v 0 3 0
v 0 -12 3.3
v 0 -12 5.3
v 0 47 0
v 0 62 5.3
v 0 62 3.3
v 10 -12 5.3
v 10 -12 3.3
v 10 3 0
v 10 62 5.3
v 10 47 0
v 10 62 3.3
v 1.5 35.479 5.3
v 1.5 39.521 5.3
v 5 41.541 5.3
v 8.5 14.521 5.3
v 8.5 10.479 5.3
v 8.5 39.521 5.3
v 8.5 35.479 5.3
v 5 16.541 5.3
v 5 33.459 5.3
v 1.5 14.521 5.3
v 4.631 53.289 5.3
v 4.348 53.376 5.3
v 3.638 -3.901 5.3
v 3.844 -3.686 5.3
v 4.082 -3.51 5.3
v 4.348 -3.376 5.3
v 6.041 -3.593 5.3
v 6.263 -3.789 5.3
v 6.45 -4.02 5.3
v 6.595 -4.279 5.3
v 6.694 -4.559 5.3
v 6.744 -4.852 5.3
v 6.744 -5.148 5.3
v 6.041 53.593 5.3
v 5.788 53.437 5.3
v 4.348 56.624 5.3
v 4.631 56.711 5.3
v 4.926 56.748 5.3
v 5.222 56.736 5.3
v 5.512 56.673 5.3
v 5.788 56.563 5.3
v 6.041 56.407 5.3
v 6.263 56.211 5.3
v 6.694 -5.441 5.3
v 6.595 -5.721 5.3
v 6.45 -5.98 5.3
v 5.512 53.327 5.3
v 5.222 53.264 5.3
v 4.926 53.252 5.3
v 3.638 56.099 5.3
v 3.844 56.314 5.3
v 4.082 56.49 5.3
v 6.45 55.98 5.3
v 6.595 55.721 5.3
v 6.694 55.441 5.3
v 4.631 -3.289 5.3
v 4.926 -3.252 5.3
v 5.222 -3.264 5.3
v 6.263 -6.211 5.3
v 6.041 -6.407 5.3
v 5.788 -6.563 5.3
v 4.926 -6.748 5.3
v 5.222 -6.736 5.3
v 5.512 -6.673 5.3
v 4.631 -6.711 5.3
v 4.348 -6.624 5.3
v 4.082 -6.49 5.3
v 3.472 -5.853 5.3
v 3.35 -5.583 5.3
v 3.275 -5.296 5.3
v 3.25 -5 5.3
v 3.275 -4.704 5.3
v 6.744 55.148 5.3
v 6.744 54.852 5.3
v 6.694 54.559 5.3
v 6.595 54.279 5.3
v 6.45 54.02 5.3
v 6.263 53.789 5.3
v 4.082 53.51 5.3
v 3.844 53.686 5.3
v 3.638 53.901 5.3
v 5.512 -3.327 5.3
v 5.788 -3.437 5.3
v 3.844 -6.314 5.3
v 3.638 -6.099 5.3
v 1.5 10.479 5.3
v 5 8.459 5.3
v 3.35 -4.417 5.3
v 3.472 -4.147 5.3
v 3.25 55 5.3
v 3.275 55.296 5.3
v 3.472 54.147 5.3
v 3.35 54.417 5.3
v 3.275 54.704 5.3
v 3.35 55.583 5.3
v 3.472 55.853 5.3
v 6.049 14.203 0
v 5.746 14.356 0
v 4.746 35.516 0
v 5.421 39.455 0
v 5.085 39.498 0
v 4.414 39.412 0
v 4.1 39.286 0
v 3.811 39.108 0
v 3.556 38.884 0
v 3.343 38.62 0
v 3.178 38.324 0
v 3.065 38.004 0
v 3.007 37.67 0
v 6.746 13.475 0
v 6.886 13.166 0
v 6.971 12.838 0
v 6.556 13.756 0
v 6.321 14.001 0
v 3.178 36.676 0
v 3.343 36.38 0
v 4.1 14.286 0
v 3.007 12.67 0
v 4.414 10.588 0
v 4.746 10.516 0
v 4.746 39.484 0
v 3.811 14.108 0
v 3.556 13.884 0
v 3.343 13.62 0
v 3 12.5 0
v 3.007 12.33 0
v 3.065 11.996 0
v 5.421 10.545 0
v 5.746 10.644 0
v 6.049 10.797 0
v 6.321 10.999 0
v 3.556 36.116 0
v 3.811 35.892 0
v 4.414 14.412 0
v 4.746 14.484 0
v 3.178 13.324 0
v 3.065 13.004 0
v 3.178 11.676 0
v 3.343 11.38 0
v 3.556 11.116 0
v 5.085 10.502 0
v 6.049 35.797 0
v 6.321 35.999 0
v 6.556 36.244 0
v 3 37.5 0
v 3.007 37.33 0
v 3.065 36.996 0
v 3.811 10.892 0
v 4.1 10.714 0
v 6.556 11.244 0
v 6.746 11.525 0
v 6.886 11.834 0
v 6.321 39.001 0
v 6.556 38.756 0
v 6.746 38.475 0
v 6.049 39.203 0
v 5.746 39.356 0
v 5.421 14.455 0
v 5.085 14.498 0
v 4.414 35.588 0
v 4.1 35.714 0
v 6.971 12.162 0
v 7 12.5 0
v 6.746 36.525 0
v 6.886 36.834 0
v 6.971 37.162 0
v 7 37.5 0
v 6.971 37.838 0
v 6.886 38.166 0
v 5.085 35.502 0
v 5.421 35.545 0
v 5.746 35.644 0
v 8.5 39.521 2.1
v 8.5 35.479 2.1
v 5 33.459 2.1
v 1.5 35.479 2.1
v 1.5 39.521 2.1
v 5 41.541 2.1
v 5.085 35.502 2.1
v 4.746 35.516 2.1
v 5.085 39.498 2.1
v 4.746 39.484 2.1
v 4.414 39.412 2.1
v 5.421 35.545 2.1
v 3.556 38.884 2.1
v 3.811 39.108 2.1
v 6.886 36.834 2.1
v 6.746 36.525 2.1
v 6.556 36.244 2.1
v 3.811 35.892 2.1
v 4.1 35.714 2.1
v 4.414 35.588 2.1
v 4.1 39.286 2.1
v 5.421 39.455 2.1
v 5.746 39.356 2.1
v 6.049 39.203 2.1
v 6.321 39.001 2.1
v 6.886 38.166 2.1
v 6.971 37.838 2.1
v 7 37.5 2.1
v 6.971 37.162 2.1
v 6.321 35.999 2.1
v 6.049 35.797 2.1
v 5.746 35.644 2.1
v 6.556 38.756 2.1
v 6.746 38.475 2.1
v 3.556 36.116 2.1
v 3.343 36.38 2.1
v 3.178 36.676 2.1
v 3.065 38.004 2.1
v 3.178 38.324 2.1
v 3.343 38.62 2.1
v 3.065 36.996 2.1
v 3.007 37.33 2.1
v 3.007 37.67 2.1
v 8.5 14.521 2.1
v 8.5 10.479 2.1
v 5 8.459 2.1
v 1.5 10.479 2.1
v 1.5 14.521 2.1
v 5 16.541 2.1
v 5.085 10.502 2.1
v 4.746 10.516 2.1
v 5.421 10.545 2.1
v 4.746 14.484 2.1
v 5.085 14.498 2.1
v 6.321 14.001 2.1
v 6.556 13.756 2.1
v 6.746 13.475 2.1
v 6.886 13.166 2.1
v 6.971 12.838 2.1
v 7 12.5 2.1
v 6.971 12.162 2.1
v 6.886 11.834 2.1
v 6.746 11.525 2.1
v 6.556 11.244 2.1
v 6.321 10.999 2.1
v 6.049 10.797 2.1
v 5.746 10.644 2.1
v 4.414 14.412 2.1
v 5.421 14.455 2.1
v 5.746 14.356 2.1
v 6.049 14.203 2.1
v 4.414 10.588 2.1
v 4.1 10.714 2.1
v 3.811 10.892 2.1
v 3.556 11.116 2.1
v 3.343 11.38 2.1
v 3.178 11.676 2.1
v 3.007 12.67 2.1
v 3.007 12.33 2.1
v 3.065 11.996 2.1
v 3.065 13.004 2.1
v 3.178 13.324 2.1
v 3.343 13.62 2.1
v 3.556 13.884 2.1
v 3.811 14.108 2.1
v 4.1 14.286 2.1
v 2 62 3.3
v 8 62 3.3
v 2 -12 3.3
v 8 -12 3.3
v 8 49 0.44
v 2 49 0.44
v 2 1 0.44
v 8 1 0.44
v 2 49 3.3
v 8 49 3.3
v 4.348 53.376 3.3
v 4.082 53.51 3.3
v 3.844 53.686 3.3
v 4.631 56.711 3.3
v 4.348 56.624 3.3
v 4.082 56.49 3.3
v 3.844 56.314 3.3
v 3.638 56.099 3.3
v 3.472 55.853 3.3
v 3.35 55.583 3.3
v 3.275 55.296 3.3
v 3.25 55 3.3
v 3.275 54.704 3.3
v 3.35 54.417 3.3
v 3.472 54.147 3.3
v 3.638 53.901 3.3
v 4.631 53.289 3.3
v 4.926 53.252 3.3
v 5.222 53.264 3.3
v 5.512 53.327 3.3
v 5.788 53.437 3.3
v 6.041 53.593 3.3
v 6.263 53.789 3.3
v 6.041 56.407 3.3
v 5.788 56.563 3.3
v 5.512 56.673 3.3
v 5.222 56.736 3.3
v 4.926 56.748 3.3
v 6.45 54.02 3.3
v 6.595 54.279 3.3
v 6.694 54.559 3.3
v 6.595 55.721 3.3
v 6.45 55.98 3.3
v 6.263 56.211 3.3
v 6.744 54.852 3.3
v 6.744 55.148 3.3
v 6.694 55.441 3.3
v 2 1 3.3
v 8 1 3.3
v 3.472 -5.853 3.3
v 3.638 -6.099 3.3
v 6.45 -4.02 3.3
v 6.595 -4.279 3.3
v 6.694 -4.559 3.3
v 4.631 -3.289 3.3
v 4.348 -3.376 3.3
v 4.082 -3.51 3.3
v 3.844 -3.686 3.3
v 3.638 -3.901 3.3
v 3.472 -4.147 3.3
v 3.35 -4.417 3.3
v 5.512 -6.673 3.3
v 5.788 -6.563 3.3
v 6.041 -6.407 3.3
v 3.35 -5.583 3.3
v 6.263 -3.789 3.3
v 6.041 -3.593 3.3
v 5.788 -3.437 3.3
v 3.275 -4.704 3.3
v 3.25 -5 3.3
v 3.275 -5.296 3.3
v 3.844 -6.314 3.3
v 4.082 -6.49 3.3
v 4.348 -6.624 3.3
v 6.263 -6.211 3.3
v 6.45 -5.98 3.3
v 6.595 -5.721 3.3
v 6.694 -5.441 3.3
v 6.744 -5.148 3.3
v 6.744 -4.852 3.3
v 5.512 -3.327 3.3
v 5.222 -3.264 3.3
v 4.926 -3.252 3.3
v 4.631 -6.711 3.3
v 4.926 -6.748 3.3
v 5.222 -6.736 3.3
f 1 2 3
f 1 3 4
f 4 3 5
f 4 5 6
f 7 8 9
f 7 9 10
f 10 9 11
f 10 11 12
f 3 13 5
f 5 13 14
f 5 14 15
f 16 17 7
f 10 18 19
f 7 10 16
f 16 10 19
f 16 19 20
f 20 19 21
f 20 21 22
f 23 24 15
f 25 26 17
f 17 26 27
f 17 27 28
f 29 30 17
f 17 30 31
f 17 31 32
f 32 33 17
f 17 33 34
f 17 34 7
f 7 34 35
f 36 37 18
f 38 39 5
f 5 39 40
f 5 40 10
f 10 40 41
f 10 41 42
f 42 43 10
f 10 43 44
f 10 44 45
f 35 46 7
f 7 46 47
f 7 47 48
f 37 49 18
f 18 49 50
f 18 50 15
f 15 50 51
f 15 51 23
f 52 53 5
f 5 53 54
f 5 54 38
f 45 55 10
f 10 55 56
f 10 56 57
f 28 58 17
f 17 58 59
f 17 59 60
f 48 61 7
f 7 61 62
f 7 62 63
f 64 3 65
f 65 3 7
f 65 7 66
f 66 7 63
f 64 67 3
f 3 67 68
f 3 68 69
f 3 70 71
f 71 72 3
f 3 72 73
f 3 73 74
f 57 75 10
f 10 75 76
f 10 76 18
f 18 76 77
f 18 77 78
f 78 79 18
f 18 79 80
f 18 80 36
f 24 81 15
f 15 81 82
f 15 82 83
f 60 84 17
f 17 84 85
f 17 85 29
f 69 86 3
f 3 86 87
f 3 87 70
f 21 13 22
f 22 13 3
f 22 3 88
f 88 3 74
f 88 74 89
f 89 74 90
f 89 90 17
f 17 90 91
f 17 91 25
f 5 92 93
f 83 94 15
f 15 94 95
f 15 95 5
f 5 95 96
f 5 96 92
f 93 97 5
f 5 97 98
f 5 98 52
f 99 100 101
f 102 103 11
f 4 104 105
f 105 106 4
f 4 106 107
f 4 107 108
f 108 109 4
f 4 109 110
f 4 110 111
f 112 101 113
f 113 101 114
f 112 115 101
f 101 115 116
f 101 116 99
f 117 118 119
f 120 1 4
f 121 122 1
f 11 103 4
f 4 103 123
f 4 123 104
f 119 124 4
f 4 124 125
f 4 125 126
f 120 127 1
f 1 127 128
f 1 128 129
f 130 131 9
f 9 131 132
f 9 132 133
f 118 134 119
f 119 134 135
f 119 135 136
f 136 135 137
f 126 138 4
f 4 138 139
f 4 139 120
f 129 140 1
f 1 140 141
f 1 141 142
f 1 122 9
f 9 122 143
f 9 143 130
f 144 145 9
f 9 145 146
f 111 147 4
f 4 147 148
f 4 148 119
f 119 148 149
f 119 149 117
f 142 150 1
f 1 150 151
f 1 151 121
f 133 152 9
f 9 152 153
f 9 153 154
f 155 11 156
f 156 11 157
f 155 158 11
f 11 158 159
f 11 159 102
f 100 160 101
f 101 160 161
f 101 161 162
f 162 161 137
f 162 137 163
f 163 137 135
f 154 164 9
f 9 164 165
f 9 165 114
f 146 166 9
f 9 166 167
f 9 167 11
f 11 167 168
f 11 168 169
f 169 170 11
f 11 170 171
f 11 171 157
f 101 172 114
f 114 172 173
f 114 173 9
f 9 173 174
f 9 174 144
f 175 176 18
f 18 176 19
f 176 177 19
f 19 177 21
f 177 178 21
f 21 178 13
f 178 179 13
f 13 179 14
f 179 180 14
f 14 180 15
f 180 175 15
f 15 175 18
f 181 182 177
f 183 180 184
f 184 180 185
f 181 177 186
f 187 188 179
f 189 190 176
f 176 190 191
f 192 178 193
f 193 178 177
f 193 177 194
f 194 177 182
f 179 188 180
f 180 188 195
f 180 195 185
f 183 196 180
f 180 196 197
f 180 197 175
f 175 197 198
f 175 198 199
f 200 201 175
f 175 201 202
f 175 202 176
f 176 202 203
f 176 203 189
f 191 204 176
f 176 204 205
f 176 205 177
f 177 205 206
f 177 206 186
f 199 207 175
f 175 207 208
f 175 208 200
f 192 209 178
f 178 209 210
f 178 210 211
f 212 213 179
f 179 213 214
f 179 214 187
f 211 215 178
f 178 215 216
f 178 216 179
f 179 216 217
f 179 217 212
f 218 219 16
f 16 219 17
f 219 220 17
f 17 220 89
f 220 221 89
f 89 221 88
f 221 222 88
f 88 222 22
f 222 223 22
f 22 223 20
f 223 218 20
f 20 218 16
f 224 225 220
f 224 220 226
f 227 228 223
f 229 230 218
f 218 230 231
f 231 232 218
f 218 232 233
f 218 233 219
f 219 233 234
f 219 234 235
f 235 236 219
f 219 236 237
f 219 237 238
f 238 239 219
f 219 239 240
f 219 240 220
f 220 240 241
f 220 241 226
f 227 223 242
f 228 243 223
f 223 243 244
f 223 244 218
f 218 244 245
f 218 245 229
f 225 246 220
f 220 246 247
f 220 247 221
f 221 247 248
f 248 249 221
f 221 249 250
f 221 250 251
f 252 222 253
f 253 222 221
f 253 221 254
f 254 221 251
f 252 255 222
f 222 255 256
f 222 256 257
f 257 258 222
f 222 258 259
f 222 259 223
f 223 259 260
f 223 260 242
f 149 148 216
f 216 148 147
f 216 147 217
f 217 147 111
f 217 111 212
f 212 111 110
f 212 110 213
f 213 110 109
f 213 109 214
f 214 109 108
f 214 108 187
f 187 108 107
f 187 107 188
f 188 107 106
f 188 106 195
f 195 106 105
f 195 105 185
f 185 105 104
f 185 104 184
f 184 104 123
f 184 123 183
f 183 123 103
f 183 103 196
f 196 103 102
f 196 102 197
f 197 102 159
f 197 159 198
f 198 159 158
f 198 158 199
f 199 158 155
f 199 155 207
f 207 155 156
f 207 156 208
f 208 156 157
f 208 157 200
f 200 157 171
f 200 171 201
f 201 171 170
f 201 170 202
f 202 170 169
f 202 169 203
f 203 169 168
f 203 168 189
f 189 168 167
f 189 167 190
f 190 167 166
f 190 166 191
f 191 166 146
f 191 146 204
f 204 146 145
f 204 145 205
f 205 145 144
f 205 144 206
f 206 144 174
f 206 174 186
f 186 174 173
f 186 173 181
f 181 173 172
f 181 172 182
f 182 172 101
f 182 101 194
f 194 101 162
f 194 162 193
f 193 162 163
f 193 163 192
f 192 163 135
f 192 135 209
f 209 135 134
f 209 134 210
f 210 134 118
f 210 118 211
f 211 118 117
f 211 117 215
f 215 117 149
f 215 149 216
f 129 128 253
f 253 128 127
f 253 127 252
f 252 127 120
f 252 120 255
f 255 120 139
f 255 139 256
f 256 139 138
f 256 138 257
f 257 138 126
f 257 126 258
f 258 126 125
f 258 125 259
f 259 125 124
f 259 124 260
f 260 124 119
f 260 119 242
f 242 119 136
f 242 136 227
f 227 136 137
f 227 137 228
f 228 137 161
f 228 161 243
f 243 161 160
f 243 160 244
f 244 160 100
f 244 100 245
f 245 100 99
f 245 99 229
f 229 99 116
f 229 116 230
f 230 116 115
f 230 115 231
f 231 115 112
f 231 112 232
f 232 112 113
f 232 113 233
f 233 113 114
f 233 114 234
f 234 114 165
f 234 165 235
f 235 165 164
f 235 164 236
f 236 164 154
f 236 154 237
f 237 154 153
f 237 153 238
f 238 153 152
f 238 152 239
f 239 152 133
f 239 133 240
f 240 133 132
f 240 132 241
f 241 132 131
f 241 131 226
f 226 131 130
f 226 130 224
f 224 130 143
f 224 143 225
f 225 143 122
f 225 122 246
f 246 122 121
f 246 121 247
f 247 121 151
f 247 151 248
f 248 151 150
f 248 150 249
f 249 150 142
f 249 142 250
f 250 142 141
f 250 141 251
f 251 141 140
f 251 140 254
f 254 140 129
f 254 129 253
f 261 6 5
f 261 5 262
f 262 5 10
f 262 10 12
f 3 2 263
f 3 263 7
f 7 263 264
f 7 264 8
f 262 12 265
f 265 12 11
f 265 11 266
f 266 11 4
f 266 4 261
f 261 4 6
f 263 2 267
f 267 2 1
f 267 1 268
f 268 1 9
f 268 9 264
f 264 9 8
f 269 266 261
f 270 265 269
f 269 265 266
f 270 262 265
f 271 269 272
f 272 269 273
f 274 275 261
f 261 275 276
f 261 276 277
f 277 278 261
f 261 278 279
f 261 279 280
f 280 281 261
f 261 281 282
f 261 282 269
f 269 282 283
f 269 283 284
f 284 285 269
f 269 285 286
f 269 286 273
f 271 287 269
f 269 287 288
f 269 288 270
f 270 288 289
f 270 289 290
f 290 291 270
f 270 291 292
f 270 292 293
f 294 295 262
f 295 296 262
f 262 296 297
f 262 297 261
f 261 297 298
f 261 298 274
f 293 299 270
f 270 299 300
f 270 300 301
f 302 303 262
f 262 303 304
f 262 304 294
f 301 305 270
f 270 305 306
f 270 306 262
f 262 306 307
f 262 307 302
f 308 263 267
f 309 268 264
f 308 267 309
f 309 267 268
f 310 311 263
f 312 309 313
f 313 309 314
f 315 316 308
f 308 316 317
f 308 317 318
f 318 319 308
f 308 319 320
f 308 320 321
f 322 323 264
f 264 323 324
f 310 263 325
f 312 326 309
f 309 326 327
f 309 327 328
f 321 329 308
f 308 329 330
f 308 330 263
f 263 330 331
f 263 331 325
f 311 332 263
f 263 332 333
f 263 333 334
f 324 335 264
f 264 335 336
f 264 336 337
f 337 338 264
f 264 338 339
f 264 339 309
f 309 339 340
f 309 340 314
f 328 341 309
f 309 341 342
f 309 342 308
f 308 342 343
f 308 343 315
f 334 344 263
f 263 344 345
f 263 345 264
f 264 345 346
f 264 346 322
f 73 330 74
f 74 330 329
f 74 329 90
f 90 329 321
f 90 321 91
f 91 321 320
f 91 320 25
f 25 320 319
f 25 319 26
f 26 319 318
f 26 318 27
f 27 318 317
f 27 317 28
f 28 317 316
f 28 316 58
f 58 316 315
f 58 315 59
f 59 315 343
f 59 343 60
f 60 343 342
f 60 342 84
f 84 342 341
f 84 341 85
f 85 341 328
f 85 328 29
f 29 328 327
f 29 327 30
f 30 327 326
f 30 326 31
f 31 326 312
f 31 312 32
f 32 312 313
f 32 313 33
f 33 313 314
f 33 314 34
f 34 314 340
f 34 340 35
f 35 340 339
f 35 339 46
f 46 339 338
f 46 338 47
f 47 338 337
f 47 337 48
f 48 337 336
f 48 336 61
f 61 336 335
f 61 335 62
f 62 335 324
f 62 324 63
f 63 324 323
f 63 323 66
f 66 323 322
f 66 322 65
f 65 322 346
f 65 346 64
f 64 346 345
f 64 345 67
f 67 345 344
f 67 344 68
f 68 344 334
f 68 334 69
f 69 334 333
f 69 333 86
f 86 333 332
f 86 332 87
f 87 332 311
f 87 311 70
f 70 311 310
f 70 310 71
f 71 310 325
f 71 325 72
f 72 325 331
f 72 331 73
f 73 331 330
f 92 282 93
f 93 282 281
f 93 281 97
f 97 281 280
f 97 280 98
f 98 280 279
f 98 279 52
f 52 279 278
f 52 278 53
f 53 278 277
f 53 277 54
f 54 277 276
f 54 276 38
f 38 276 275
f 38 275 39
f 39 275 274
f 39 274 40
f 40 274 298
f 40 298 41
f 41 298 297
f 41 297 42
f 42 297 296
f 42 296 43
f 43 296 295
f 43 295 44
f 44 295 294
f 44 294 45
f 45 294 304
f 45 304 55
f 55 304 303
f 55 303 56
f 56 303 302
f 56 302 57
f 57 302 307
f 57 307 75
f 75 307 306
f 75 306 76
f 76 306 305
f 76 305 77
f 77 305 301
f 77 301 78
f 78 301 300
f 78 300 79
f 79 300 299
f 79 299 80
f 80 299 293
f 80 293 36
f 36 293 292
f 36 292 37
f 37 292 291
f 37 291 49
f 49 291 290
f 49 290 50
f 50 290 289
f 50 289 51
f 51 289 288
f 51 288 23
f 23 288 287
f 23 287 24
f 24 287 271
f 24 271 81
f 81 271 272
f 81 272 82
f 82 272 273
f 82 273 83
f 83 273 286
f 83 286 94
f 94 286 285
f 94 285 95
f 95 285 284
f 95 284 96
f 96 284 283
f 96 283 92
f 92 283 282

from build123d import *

# Parameters (mm, degrees)
SKETCH1_W           = 10
SKETCH1_H           = 50
BOSS_EXTRUDE1_DEPTH = 5.3
CUT_EXTRUDE1_DEPTH  = 3.2
SKETCH3_R           = 2
CUT_EXTRUDE2_DEPTH  = 8
SKETCH4_W           = 10
SKETCH4_H           = 5.3
BOSS_EXTRUDE2_DEPTH = 12
SKETCH5_W           = 10
SKETCH5_H           = 5.3
BOSS_EXTRUDE3_DEPTH = 12
CUT_EXTRUDE3_DEPTH  = 12
SKETCH8_W           = 6
SKETCH8_H           = 13
CUT_EXTRUDE4_DEPTH  = 3.3
SKETCH9_R           = 1.75
CUT_EXTRUDE5_DEPTH  = 3.3


with BuildPart() as part:
    # Sketch1 → Boss-Extrude1 (new body)
    with BuildSketch(Plane.XY):
        with Locations((5, 25)):
            Rectangle(SKETCH1_W, SKETCH1_H)
    extrude(amount=BOSS_EXTRUDE1_DEPTH)

    # Sketch2 → Cut-Extrude1 (cut)
    with BuildSketch(Plane.XY.offset(5.3)):
        Polygon((8.5, 14.520725942), (5, 16.541451884), (1.5, 14.520725942), (1.5, 10.479274058), (5, 8.458548116), (8.5, 10.479274058), align=None)
        Polygon((8.5, 39.520725942), (5, 41.541451884), (1.5, 39.520725942), (1.5, 35.479274058), (5, 33.458548116), (8.5, 35.479274058), align=None)
    extrude(amount=-CUT_EXTRUDE1_DEPTH, mode=Mode.SUBTRACT)

    # Sketch3 → Cut-Extrude2 (cut)
    with BuildSketch(Plane.XY.offset(2.1)):
        with Locations((5, 37.5)):
            Circle(SKETCH3_R)
        with Locations((5, 12.5)):
            Circle(SKETCH3_R)
    extrude(amount=-CUT_EXTRUDE2_DEPTH, mode=Mode.SUBTRACT)

    # Sketch4 → Boss-Extrude2 (add)
    with BuildSketch(Plane(origin=(0, 50, 0), x_dir=(1, 0, 0), z_dir=(0, 1, 0))):
        with Locations((5, -2.65)):
            Rectangle(SKETCH4_W, SKETCH4_H)
    extrude(amount=BOSS_EXTRUDE2_DEPTH)

    # Sketch5 → Boss-Extrude3 (add)
    with BuildSketch(Plane.XZ):
        with Locations((5, 2.65)):
            Rectangle(SKETCH5_W, SKETCH5_H)
    extrude(amount=BOSS_EXTRUDE3_DEPTH)

    # Sketch6 → Cut-Extrude3 (cut)
    with BuildSketch(Plane.ZY):
        Polygon((3.3, 62), (0, 47), (0, 62), align=None)
        Polygon((0, -12), (3.3, -12), (0, 3), align=None)
    extrude(amount=-CUT_EXTRUDE3_DEPTH, mode=Mode.SUBTRACT)

    # Sketch8 → Cut-Extrude4 (cut)
    with BuildSketch(Plane(origin=(0, 0, 0), x_dir=(-1, 0, 0), z_dir=(0, 0, -1))):
        with Locations((-5, 55.5)):
            Rectangle(SKETCH8_W, SKETCH8_H)
        with Locations((-5, -5.5)):
            Rectangle(SKETCH8_W, SKETCH8_H)
    extrude(amount=-CUT_EXTRUDE4_DEPTH, mode=Mode.SUBTRACT)

    # Sketch9 → Cut-Extrude5 (cut)
    with BuildSketch(Plane(origin=(0, 0, 3.3), x_dir=(-1, 0, 0), z_dir=(0, 0, -1))):
        with Locations((-5, -5)):
            Circle(SKETCH9_R)
        with Locations((-5, 55)):
            Circle(SKETCH9_R)
    extrude(amount=-CUT_EXTRUDE5_DEPTH, mode=Mode.SUBTRACT)


solid = part.part
